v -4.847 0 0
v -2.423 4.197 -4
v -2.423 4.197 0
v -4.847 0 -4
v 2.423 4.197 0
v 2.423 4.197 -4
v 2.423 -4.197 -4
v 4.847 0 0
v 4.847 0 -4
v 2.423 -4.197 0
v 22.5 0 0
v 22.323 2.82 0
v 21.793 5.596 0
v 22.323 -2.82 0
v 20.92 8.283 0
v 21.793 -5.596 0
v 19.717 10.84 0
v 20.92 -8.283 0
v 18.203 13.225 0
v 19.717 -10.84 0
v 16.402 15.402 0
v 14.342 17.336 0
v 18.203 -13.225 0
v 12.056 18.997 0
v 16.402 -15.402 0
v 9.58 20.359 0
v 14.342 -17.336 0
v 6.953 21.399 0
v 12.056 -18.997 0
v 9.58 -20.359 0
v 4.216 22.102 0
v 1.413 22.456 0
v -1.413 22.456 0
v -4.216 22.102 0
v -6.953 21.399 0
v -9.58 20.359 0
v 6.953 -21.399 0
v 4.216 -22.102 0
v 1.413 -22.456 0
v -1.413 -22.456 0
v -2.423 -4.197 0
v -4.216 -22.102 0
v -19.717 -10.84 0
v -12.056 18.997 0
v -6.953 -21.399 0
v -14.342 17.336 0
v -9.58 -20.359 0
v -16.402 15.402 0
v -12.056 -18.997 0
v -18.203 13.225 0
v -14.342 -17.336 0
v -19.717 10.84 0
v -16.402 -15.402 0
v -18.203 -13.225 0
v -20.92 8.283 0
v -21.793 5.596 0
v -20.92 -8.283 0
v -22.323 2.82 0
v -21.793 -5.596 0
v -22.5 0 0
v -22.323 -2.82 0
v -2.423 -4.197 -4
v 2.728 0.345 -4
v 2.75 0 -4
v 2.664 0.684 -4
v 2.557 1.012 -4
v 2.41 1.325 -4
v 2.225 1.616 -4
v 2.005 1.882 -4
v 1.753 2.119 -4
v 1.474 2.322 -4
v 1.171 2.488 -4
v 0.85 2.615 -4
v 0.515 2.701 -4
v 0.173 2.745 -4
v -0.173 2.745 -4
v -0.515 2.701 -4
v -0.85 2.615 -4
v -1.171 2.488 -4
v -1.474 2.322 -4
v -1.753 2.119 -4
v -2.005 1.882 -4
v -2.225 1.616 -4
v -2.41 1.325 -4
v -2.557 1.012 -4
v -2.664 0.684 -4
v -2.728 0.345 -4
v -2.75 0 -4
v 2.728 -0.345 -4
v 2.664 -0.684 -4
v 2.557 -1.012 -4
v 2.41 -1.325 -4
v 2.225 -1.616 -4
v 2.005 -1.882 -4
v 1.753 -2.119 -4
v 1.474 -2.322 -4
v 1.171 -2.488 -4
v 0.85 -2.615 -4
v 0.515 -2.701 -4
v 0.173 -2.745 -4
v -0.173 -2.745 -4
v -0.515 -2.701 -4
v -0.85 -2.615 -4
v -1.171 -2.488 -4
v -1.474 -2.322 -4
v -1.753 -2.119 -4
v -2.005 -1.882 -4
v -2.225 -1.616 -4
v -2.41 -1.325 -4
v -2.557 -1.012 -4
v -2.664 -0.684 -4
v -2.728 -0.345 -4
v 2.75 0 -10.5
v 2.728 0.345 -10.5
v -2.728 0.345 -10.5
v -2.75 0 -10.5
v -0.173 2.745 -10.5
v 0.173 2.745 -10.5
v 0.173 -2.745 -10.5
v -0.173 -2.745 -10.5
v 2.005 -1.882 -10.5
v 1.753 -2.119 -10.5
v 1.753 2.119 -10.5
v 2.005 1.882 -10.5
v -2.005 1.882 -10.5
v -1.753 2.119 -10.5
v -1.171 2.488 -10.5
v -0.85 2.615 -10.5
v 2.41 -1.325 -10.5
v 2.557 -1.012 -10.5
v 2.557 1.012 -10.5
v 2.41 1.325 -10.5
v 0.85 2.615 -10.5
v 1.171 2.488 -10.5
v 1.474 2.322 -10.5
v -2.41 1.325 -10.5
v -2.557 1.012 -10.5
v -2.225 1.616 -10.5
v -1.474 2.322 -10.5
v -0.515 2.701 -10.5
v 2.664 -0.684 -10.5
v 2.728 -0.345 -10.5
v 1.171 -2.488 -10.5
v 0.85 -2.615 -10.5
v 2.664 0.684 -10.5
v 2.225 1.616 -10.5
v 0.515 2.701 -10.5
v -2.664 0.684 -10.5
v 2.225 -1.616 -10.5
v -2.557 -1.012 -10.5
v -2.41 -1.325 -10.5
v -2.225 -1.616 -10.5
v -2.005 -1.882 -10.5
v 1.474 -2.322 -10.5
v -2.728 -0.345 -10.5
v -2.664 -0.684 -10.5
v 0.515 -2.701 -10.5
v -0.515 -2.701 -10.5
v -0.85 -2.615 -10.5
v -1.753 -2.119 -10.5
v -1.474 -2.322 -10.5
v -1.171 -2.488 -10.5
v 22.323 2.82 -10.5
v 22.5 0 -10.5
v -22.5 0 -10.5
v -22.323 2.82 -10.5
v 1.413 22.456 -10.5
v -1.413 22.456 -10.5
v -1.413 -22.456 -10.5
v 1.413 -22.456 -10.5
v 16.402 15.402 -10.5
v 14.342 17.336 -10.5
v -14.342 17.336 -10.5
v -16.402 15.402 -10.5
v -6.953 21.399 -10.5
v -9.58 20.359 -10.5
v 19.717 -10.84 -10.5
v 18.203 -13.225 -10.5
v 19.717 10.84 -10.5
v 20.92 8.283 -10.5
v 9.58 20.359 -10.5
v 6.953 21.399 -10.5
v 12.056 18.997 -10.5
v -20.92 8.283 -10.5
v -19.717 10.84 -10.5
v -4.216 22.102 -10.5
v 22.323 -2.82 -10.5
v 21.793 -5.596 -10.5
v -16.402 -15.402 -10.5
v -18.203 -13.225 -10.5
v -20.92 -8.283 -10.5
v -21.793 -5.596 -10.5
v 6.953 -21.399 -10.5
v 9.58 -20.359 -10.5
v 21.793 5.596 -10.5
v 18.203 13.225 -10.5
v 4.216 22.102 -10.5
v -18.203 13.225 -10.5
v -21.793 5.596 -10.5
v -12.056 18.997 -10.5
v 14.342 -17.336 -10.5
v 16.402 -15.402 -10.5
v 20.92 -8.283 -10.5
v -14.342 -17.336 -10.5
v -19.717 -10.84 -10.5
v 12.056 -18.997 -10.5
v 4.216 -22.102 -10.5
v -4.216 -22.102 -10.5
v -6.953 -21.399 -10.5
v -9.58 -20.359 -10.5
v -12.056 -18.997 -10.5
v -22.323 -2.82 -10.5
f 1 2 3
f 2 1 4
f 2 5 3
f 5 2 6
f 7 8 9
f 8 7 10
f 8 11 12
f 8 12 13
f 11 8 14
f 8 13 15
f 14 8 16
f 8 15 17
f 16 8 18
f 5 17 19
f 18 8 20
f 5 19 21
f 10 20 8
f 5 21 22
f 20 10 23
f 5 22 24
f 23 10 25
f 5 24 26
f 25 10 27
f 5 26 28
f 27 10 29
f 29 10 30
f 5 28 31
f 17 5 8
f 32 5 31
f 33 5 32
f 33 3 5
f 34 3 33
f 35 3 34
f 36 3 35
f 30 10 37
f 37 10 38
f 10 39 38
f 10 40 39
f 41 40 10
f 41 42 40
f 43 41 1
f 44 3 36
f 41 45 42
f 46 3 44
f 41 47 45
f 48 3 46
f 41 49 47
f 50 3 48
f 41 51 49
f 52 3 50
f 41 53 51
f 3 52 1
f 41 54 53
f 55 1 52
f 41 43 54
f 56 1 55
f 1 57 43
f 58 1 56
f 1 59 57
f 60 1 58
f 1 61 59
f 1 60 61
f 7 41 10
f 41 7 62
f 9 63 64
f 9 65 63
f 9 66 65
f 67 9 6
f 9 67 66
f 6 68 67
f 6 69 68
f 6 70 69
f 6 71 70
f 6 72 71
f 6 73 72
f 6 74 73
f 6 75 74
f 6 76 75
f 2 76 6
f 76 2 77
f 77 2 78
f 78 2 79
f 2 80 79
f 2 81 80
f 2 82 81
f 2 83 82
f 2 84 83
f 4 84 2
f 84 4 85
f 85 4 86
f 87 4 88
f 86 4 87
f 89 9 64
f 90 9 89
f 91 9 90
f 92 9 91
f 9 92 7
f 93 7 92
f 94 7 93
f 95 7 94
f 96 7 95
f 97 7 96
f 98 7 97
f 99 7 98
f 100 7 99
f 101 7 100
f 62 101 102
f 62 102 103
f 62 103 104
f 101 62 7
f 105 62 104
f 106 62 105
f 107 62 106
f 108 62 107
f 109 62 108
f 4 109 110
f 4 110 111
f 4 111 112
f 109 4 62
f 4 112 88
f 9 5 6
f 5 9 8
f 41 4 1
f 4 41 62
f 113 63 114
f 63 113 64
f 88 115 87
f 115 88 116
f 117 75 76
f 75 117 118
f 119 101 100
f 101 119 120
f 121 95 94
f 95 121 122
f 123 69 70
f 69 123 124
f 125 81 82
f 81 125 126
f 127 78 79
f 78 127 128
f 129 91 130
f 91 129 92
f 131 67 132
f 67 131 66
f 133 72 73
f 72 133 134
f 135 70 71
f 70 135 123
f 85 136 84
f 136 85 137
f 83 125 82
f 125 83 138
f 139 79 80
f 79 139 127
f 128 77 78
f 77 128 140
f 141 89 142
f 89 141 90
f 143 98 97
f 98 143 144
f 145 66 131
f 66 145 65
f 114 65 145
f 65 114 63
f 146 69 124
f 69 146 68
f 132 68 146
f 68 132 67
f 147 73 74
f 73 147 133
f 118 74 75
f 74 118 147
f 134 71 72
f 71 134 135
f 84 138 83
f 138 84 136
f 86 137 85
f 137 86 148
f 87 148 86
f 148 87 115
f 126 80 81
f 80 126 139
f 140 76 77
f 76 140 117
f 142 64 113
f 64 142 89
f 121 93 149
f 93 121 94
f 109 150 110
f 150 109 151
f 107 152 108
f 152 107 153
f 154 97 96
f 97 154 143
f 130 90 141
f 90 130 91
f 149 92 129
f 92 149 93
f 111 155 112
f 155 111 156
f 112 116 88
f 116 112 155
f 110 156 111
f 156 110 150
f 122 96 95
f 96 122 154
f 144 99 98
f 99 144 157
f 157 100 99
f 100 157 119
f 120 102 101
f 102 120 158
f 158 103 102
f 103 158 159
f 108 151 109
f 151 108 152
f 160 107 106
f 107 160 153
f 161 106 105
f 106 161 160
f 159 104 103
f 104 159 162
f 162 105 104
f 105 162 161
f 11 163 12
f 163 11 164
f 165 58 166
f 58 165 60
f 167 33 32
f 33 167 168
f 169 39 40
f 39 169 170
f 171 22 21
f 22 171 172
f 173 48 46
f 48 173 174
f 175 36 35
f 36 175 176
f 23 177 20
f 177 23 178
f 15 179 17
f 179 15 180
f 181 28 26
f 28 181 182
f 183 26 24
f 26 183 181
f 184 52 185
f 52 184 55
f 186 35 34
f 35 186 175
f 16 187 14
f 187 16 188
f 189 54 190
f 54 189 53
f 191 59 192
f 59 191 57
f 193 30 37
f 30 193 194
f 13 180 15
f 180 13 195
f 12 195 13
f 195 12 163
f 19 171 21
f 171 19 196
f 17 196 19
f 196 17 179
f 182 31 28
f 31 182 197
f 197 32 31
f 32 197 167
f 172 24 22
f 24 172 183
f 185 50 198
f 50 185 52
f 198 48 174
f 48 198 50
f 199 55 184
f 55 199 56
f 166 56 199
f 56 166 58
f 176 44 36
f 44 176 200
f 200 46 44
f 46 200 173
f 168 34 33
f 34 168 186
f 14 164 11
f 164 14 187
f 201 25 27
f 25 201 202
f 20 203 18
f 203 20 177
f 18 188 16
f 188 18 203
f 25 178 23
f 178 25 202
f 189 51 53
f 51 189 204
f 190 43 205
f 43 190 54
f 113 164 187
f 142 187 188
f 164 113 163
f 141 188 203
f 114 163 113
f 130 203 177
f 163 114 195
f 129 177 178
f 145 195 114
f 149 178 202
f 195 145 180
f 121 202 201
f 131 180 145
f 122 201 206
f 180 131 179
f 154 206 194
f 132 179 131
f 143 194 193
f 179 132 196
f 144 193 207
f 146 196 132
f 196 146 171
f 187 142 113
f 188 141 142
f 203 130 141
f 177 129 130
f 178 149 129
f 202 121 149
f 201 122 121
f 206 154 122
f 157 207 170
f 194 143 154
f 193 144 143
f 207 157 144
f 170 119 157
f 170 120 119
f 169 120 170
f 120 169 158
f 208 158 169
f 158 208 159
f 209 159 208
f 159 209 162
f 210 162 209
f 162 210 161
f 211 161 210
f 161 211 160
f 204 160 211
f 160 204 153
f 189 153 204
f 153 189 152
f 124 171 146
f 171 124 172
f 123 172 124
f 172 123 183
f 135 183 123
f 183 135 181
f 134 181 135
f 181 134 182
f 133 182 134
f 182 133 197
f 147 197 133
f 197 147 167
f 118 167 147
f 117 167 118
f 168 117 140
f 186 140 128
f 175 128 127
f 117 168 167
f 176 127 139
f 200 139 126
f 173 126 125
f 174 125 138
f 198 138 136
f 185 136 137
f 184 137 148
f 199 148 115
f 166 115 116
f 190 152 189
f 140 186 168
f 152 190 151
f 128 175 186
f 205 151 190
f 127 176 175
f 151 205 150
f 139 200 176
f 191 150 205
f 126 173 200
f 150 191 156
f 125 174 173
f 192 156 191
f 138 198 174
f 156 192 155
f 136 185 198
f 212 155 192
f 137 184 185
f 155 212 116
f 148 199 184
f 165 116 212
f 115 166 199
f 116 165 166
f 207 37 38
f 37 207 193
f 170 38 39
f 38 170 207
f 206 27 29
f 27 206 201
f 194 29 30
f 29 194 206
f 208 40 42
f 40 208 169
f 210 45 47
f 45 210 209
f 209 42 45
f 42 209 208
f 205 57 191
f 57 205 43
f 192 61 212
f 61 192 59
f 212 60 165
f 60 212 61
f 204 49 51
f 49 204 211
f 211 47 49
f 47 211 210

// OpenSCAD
$fn = 50;


difference() {
	union() {
		translate(v = [0, 0, -10.5000000000]) {
			cylinder(h = 10.5000000000, r = 22.5000000000);
		}
	}
	union() {
		translate(v = [0, 0, 0]) {
			rotate(a = [0, 0, 0]) {
				difference() {
					union() {
						translate(v = [0, 0, -4]) {
							#linear_extrude(height = 4) {
								polygon(points = [[4.8468000000, 0.0000000000], [2.4234000000, 4.1974519271], [-2.4234000000, 4.1974519271], [-4.8468000000, 0.0000000000], [-2.4234000000, -4.1974519271], [2.4234000000, -4.1974519271]]);
							}
						}
					}
					union();
				}
			}
		}
		#translate(v = [0, 0, -100.0000000000]) {
			cylinder(h = 200, r = 2.7500000000);
		}
	}
}
